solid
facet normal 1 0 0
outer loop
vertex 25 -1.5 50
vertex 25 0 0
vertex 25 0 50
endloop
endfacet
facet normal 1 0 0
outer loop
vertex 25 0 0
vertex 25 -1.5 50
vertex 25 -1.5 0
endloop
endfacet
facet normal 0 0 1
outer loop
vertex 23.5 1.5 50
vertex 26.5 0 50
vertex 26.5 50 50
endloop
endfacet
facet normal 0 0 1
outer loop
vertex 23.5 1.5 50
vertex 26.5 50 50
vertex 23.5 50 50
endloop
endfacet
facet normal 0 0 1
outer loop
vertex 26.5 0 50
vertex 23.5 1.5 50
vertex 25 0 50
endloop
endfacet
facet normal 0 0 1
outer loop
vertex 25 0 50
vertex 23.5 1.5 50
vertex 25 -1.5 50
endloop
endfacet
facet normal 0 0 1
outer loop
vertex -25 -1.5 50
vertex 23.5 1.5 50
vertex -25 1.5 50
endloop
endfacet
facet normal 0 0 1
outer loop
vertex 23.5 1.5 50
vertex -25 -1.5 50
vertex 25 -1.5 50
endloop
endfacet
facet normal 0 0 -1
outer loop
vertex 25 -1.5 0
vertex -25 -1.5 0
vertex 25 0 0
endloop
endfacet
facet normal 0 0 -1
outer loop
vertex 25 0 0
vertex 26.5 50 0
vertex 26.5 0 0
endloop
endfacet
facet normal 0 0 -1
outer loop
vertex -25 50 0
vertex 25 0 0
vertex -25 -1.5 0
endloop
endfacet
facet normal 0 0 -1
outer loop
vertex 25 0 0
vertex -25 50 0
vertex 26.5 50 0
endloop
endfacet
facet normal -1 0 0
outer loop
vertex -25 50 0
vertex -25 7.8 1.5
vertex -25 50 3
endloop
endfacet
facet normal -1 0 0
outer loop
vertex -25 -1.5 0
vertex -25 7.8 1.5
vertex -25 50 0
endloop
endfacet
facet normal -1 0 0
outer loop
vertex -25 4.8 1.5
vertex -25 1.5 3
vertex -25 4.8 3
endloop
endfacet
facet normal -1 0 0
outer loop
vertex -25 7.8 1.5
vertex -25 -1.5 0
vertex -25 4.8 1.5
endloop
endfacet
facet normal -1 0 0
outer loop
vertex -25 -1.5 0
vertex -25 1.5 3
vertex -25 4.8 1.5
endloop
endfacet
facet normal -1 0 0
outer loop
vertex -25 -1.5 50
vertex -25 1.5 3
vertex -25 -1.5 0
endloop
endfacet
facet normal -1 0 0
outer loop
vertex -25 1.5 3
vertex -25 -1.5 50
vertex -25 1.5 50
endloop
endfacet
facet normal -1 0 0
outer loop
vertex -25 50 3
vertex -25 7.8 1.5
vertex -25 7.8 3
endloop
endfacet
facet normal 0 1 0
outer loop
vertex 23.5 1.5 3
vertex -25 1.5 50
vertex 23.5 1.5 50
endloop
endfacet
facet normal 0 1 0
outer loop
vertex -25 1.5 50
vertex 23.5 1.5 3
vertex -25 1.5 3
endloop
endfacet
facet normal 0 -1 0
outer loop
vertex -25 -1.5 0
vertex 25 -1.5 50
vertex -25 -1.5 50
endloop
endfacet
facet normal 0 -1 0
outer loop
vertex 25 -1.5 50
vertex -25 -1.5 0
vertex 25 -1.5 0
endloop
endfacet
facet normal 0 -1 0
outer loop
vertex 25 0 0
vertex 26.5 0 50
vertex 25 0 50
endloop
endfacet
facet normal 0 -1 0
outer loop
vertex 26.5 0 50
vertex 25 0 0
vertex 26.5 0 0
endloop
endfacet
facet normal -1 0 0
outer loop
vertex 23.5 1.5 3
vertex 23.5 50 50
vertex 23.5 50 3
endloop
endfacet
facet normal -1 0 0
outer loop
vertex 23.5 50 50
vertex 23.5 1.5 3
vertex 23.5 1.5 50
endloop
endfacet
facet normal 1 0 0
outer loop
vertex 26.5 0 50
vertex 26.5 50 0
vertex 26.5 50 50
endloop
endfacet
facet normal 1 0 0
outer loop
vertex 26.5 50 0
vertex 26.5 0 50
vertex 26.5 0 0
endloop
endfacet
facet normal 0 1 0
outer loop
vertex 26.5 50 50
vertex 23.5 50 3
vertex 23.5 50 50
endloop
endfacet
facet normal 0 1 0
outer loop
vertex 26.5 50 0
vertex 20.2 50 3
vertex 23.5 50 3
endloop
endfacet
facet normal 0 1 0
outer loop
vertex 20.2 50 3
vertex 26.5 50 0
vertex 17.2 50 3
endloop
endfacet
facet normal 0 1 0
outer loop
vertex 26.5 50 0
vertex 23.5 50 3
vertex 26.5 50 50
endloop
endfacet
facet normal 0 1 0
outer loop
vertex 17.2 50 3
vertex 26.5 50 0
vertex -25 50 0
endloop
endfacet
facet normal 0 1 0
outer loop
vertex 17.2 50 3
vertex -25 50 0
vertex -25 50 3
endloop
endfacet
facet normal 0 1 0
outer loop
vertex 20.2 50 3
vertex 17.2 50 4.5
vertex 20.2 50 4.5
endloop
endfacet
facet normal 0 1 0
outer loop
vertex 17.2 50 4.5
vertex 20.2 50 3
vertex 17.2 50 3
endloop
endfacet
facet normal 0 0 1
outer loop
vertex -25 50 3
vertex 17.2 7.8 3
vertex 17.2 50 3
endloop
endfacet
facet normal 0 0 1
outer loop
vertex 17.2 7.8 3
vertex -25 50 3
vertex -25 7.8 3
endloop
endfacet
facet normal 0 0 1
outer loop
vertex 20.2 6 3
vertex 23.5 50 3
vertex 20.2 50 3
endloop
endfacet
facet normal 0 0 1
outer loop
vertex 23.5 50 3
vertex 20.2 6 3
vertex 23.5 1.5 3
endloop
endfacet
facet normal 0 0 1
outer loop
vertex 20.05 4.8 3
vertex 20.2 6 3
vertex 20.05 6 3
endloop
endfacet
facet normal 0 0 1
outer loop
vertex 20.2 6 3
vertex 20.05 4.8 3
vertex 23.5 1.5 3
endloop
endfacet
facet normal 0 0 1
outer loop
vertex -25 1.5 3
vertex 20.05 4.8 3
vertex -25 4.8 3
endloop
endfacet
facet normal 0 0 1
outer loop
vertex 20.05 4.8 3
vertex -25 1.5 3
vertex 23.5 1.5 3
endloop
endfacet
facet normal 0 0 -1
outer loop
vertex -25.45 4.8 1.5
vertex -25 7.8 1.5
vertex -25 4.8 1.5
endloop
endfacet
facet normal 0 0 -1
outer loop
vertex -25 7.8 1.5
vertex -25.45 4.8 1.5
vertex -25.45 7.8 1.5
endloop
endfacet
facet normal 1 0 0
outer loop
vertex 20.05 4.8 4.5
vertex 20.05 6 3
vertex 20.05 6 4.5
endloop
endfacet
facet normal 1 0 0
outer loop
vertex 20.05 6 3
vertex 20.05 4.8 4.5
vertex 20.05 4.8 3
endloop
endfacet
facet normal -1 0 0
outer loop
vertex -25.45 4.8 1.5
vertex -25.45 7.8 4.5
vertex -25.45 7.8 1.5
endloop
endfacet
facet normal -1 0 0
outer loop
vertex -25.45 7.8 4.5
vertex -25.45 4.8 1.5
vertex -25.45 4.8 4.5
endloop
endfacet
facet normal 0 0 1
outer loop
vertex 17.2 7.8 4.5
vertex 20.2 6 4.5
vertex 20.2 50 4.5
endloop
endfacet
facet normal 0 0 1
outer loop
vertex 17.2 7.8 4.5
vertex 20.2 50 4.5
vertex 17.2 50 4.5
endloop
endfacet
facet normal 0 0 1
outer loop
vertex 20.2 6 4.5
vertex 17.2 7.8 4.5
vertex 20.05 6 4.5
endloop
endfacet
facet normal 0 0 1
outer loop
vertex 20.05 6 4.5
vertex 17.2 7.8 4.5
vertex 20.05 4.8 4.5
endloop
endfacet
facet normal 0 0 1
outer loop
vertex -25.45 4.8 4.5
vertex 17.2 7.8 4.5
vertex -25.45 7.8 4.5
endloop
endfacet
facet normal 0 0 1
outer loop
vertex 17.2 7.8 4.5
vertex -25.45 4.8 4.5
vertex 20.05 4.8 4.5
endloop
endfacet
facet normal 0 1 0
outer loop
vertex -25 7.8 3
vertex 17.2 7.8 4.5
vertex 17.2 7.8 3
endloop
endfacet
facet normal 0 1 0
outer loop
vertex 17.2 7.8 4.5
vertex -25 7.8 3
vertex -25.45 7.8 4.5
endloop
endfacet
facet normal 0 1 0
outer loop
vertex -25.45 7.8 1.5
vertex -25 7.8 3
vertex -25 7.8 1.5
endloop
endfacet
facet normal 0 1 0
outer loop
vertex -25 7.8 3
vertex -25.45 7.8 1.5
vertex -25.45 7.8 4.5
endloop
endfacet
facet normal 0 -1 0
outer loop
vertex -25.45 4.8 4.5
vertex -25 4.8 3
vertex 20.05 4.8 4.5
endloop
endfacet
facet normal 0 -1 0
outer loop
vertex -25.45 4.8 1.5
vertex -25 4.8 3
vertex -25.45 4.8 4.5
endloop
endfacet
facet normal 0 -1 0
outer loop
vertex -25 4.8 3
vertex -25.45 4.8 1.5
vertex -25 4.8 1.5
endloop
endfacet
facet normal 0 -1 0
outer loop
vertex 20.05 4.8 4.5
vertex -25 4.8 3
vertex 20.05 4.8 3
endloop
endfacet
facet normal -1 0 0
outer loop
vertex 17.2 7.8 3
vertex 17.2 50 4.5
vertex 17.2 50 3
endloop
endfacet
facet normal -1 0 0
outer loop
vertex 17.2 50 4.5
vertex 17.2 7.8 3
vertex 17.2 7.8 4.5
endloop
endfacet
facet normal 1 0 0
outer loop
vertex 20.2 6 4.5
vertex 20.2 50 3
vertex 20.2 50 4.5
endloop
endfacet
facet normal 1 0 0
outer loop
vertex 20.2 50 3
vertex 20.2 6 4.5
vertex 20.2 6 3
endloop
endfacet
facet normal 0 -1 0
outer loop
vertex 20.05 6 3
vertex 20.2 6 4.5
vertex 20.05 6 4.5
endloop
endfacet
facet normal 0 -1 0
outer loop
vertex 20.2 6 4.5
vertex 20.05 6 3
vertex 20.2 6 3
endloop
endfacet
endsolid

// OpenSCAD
wallWidth = 3;
totalWidth = 50;
totalHeight = 50;
totalDepth = 50;

// pared trasera
translate([0,0,25])
    cube([50,wallWidth,50], center=true);
// pared lateral
translate([25,25,25])
    rotate([0,0,90])
        cube([50,wallWidth,50], center=true);
// base
translate([0,25,wallWidth/2])
    rotate([90, 0, 0])
        cube([50,
              wallWidth,
              50], center=true);
// canaleta trasera
translate([(-wallWidth*0.9),
           wallWidth*2.1,
           wallWidth])
    rotate([0,90,0])
        cube([wallWidth, 
              wallWidth, 
              totalWidth - 1.5 * wallWidth],
             center=true);
// canaleta lateral
translate([totalDepth/2 - 2.1 * wallWidth,
           totalDepth/2 + wallWidth,
           wallWidth])
    rotate([90,0,0])
        cube([wallWidth, 
              wallWidth, 
              totalWidth - (2 * wallWidth)],
             center=true);
